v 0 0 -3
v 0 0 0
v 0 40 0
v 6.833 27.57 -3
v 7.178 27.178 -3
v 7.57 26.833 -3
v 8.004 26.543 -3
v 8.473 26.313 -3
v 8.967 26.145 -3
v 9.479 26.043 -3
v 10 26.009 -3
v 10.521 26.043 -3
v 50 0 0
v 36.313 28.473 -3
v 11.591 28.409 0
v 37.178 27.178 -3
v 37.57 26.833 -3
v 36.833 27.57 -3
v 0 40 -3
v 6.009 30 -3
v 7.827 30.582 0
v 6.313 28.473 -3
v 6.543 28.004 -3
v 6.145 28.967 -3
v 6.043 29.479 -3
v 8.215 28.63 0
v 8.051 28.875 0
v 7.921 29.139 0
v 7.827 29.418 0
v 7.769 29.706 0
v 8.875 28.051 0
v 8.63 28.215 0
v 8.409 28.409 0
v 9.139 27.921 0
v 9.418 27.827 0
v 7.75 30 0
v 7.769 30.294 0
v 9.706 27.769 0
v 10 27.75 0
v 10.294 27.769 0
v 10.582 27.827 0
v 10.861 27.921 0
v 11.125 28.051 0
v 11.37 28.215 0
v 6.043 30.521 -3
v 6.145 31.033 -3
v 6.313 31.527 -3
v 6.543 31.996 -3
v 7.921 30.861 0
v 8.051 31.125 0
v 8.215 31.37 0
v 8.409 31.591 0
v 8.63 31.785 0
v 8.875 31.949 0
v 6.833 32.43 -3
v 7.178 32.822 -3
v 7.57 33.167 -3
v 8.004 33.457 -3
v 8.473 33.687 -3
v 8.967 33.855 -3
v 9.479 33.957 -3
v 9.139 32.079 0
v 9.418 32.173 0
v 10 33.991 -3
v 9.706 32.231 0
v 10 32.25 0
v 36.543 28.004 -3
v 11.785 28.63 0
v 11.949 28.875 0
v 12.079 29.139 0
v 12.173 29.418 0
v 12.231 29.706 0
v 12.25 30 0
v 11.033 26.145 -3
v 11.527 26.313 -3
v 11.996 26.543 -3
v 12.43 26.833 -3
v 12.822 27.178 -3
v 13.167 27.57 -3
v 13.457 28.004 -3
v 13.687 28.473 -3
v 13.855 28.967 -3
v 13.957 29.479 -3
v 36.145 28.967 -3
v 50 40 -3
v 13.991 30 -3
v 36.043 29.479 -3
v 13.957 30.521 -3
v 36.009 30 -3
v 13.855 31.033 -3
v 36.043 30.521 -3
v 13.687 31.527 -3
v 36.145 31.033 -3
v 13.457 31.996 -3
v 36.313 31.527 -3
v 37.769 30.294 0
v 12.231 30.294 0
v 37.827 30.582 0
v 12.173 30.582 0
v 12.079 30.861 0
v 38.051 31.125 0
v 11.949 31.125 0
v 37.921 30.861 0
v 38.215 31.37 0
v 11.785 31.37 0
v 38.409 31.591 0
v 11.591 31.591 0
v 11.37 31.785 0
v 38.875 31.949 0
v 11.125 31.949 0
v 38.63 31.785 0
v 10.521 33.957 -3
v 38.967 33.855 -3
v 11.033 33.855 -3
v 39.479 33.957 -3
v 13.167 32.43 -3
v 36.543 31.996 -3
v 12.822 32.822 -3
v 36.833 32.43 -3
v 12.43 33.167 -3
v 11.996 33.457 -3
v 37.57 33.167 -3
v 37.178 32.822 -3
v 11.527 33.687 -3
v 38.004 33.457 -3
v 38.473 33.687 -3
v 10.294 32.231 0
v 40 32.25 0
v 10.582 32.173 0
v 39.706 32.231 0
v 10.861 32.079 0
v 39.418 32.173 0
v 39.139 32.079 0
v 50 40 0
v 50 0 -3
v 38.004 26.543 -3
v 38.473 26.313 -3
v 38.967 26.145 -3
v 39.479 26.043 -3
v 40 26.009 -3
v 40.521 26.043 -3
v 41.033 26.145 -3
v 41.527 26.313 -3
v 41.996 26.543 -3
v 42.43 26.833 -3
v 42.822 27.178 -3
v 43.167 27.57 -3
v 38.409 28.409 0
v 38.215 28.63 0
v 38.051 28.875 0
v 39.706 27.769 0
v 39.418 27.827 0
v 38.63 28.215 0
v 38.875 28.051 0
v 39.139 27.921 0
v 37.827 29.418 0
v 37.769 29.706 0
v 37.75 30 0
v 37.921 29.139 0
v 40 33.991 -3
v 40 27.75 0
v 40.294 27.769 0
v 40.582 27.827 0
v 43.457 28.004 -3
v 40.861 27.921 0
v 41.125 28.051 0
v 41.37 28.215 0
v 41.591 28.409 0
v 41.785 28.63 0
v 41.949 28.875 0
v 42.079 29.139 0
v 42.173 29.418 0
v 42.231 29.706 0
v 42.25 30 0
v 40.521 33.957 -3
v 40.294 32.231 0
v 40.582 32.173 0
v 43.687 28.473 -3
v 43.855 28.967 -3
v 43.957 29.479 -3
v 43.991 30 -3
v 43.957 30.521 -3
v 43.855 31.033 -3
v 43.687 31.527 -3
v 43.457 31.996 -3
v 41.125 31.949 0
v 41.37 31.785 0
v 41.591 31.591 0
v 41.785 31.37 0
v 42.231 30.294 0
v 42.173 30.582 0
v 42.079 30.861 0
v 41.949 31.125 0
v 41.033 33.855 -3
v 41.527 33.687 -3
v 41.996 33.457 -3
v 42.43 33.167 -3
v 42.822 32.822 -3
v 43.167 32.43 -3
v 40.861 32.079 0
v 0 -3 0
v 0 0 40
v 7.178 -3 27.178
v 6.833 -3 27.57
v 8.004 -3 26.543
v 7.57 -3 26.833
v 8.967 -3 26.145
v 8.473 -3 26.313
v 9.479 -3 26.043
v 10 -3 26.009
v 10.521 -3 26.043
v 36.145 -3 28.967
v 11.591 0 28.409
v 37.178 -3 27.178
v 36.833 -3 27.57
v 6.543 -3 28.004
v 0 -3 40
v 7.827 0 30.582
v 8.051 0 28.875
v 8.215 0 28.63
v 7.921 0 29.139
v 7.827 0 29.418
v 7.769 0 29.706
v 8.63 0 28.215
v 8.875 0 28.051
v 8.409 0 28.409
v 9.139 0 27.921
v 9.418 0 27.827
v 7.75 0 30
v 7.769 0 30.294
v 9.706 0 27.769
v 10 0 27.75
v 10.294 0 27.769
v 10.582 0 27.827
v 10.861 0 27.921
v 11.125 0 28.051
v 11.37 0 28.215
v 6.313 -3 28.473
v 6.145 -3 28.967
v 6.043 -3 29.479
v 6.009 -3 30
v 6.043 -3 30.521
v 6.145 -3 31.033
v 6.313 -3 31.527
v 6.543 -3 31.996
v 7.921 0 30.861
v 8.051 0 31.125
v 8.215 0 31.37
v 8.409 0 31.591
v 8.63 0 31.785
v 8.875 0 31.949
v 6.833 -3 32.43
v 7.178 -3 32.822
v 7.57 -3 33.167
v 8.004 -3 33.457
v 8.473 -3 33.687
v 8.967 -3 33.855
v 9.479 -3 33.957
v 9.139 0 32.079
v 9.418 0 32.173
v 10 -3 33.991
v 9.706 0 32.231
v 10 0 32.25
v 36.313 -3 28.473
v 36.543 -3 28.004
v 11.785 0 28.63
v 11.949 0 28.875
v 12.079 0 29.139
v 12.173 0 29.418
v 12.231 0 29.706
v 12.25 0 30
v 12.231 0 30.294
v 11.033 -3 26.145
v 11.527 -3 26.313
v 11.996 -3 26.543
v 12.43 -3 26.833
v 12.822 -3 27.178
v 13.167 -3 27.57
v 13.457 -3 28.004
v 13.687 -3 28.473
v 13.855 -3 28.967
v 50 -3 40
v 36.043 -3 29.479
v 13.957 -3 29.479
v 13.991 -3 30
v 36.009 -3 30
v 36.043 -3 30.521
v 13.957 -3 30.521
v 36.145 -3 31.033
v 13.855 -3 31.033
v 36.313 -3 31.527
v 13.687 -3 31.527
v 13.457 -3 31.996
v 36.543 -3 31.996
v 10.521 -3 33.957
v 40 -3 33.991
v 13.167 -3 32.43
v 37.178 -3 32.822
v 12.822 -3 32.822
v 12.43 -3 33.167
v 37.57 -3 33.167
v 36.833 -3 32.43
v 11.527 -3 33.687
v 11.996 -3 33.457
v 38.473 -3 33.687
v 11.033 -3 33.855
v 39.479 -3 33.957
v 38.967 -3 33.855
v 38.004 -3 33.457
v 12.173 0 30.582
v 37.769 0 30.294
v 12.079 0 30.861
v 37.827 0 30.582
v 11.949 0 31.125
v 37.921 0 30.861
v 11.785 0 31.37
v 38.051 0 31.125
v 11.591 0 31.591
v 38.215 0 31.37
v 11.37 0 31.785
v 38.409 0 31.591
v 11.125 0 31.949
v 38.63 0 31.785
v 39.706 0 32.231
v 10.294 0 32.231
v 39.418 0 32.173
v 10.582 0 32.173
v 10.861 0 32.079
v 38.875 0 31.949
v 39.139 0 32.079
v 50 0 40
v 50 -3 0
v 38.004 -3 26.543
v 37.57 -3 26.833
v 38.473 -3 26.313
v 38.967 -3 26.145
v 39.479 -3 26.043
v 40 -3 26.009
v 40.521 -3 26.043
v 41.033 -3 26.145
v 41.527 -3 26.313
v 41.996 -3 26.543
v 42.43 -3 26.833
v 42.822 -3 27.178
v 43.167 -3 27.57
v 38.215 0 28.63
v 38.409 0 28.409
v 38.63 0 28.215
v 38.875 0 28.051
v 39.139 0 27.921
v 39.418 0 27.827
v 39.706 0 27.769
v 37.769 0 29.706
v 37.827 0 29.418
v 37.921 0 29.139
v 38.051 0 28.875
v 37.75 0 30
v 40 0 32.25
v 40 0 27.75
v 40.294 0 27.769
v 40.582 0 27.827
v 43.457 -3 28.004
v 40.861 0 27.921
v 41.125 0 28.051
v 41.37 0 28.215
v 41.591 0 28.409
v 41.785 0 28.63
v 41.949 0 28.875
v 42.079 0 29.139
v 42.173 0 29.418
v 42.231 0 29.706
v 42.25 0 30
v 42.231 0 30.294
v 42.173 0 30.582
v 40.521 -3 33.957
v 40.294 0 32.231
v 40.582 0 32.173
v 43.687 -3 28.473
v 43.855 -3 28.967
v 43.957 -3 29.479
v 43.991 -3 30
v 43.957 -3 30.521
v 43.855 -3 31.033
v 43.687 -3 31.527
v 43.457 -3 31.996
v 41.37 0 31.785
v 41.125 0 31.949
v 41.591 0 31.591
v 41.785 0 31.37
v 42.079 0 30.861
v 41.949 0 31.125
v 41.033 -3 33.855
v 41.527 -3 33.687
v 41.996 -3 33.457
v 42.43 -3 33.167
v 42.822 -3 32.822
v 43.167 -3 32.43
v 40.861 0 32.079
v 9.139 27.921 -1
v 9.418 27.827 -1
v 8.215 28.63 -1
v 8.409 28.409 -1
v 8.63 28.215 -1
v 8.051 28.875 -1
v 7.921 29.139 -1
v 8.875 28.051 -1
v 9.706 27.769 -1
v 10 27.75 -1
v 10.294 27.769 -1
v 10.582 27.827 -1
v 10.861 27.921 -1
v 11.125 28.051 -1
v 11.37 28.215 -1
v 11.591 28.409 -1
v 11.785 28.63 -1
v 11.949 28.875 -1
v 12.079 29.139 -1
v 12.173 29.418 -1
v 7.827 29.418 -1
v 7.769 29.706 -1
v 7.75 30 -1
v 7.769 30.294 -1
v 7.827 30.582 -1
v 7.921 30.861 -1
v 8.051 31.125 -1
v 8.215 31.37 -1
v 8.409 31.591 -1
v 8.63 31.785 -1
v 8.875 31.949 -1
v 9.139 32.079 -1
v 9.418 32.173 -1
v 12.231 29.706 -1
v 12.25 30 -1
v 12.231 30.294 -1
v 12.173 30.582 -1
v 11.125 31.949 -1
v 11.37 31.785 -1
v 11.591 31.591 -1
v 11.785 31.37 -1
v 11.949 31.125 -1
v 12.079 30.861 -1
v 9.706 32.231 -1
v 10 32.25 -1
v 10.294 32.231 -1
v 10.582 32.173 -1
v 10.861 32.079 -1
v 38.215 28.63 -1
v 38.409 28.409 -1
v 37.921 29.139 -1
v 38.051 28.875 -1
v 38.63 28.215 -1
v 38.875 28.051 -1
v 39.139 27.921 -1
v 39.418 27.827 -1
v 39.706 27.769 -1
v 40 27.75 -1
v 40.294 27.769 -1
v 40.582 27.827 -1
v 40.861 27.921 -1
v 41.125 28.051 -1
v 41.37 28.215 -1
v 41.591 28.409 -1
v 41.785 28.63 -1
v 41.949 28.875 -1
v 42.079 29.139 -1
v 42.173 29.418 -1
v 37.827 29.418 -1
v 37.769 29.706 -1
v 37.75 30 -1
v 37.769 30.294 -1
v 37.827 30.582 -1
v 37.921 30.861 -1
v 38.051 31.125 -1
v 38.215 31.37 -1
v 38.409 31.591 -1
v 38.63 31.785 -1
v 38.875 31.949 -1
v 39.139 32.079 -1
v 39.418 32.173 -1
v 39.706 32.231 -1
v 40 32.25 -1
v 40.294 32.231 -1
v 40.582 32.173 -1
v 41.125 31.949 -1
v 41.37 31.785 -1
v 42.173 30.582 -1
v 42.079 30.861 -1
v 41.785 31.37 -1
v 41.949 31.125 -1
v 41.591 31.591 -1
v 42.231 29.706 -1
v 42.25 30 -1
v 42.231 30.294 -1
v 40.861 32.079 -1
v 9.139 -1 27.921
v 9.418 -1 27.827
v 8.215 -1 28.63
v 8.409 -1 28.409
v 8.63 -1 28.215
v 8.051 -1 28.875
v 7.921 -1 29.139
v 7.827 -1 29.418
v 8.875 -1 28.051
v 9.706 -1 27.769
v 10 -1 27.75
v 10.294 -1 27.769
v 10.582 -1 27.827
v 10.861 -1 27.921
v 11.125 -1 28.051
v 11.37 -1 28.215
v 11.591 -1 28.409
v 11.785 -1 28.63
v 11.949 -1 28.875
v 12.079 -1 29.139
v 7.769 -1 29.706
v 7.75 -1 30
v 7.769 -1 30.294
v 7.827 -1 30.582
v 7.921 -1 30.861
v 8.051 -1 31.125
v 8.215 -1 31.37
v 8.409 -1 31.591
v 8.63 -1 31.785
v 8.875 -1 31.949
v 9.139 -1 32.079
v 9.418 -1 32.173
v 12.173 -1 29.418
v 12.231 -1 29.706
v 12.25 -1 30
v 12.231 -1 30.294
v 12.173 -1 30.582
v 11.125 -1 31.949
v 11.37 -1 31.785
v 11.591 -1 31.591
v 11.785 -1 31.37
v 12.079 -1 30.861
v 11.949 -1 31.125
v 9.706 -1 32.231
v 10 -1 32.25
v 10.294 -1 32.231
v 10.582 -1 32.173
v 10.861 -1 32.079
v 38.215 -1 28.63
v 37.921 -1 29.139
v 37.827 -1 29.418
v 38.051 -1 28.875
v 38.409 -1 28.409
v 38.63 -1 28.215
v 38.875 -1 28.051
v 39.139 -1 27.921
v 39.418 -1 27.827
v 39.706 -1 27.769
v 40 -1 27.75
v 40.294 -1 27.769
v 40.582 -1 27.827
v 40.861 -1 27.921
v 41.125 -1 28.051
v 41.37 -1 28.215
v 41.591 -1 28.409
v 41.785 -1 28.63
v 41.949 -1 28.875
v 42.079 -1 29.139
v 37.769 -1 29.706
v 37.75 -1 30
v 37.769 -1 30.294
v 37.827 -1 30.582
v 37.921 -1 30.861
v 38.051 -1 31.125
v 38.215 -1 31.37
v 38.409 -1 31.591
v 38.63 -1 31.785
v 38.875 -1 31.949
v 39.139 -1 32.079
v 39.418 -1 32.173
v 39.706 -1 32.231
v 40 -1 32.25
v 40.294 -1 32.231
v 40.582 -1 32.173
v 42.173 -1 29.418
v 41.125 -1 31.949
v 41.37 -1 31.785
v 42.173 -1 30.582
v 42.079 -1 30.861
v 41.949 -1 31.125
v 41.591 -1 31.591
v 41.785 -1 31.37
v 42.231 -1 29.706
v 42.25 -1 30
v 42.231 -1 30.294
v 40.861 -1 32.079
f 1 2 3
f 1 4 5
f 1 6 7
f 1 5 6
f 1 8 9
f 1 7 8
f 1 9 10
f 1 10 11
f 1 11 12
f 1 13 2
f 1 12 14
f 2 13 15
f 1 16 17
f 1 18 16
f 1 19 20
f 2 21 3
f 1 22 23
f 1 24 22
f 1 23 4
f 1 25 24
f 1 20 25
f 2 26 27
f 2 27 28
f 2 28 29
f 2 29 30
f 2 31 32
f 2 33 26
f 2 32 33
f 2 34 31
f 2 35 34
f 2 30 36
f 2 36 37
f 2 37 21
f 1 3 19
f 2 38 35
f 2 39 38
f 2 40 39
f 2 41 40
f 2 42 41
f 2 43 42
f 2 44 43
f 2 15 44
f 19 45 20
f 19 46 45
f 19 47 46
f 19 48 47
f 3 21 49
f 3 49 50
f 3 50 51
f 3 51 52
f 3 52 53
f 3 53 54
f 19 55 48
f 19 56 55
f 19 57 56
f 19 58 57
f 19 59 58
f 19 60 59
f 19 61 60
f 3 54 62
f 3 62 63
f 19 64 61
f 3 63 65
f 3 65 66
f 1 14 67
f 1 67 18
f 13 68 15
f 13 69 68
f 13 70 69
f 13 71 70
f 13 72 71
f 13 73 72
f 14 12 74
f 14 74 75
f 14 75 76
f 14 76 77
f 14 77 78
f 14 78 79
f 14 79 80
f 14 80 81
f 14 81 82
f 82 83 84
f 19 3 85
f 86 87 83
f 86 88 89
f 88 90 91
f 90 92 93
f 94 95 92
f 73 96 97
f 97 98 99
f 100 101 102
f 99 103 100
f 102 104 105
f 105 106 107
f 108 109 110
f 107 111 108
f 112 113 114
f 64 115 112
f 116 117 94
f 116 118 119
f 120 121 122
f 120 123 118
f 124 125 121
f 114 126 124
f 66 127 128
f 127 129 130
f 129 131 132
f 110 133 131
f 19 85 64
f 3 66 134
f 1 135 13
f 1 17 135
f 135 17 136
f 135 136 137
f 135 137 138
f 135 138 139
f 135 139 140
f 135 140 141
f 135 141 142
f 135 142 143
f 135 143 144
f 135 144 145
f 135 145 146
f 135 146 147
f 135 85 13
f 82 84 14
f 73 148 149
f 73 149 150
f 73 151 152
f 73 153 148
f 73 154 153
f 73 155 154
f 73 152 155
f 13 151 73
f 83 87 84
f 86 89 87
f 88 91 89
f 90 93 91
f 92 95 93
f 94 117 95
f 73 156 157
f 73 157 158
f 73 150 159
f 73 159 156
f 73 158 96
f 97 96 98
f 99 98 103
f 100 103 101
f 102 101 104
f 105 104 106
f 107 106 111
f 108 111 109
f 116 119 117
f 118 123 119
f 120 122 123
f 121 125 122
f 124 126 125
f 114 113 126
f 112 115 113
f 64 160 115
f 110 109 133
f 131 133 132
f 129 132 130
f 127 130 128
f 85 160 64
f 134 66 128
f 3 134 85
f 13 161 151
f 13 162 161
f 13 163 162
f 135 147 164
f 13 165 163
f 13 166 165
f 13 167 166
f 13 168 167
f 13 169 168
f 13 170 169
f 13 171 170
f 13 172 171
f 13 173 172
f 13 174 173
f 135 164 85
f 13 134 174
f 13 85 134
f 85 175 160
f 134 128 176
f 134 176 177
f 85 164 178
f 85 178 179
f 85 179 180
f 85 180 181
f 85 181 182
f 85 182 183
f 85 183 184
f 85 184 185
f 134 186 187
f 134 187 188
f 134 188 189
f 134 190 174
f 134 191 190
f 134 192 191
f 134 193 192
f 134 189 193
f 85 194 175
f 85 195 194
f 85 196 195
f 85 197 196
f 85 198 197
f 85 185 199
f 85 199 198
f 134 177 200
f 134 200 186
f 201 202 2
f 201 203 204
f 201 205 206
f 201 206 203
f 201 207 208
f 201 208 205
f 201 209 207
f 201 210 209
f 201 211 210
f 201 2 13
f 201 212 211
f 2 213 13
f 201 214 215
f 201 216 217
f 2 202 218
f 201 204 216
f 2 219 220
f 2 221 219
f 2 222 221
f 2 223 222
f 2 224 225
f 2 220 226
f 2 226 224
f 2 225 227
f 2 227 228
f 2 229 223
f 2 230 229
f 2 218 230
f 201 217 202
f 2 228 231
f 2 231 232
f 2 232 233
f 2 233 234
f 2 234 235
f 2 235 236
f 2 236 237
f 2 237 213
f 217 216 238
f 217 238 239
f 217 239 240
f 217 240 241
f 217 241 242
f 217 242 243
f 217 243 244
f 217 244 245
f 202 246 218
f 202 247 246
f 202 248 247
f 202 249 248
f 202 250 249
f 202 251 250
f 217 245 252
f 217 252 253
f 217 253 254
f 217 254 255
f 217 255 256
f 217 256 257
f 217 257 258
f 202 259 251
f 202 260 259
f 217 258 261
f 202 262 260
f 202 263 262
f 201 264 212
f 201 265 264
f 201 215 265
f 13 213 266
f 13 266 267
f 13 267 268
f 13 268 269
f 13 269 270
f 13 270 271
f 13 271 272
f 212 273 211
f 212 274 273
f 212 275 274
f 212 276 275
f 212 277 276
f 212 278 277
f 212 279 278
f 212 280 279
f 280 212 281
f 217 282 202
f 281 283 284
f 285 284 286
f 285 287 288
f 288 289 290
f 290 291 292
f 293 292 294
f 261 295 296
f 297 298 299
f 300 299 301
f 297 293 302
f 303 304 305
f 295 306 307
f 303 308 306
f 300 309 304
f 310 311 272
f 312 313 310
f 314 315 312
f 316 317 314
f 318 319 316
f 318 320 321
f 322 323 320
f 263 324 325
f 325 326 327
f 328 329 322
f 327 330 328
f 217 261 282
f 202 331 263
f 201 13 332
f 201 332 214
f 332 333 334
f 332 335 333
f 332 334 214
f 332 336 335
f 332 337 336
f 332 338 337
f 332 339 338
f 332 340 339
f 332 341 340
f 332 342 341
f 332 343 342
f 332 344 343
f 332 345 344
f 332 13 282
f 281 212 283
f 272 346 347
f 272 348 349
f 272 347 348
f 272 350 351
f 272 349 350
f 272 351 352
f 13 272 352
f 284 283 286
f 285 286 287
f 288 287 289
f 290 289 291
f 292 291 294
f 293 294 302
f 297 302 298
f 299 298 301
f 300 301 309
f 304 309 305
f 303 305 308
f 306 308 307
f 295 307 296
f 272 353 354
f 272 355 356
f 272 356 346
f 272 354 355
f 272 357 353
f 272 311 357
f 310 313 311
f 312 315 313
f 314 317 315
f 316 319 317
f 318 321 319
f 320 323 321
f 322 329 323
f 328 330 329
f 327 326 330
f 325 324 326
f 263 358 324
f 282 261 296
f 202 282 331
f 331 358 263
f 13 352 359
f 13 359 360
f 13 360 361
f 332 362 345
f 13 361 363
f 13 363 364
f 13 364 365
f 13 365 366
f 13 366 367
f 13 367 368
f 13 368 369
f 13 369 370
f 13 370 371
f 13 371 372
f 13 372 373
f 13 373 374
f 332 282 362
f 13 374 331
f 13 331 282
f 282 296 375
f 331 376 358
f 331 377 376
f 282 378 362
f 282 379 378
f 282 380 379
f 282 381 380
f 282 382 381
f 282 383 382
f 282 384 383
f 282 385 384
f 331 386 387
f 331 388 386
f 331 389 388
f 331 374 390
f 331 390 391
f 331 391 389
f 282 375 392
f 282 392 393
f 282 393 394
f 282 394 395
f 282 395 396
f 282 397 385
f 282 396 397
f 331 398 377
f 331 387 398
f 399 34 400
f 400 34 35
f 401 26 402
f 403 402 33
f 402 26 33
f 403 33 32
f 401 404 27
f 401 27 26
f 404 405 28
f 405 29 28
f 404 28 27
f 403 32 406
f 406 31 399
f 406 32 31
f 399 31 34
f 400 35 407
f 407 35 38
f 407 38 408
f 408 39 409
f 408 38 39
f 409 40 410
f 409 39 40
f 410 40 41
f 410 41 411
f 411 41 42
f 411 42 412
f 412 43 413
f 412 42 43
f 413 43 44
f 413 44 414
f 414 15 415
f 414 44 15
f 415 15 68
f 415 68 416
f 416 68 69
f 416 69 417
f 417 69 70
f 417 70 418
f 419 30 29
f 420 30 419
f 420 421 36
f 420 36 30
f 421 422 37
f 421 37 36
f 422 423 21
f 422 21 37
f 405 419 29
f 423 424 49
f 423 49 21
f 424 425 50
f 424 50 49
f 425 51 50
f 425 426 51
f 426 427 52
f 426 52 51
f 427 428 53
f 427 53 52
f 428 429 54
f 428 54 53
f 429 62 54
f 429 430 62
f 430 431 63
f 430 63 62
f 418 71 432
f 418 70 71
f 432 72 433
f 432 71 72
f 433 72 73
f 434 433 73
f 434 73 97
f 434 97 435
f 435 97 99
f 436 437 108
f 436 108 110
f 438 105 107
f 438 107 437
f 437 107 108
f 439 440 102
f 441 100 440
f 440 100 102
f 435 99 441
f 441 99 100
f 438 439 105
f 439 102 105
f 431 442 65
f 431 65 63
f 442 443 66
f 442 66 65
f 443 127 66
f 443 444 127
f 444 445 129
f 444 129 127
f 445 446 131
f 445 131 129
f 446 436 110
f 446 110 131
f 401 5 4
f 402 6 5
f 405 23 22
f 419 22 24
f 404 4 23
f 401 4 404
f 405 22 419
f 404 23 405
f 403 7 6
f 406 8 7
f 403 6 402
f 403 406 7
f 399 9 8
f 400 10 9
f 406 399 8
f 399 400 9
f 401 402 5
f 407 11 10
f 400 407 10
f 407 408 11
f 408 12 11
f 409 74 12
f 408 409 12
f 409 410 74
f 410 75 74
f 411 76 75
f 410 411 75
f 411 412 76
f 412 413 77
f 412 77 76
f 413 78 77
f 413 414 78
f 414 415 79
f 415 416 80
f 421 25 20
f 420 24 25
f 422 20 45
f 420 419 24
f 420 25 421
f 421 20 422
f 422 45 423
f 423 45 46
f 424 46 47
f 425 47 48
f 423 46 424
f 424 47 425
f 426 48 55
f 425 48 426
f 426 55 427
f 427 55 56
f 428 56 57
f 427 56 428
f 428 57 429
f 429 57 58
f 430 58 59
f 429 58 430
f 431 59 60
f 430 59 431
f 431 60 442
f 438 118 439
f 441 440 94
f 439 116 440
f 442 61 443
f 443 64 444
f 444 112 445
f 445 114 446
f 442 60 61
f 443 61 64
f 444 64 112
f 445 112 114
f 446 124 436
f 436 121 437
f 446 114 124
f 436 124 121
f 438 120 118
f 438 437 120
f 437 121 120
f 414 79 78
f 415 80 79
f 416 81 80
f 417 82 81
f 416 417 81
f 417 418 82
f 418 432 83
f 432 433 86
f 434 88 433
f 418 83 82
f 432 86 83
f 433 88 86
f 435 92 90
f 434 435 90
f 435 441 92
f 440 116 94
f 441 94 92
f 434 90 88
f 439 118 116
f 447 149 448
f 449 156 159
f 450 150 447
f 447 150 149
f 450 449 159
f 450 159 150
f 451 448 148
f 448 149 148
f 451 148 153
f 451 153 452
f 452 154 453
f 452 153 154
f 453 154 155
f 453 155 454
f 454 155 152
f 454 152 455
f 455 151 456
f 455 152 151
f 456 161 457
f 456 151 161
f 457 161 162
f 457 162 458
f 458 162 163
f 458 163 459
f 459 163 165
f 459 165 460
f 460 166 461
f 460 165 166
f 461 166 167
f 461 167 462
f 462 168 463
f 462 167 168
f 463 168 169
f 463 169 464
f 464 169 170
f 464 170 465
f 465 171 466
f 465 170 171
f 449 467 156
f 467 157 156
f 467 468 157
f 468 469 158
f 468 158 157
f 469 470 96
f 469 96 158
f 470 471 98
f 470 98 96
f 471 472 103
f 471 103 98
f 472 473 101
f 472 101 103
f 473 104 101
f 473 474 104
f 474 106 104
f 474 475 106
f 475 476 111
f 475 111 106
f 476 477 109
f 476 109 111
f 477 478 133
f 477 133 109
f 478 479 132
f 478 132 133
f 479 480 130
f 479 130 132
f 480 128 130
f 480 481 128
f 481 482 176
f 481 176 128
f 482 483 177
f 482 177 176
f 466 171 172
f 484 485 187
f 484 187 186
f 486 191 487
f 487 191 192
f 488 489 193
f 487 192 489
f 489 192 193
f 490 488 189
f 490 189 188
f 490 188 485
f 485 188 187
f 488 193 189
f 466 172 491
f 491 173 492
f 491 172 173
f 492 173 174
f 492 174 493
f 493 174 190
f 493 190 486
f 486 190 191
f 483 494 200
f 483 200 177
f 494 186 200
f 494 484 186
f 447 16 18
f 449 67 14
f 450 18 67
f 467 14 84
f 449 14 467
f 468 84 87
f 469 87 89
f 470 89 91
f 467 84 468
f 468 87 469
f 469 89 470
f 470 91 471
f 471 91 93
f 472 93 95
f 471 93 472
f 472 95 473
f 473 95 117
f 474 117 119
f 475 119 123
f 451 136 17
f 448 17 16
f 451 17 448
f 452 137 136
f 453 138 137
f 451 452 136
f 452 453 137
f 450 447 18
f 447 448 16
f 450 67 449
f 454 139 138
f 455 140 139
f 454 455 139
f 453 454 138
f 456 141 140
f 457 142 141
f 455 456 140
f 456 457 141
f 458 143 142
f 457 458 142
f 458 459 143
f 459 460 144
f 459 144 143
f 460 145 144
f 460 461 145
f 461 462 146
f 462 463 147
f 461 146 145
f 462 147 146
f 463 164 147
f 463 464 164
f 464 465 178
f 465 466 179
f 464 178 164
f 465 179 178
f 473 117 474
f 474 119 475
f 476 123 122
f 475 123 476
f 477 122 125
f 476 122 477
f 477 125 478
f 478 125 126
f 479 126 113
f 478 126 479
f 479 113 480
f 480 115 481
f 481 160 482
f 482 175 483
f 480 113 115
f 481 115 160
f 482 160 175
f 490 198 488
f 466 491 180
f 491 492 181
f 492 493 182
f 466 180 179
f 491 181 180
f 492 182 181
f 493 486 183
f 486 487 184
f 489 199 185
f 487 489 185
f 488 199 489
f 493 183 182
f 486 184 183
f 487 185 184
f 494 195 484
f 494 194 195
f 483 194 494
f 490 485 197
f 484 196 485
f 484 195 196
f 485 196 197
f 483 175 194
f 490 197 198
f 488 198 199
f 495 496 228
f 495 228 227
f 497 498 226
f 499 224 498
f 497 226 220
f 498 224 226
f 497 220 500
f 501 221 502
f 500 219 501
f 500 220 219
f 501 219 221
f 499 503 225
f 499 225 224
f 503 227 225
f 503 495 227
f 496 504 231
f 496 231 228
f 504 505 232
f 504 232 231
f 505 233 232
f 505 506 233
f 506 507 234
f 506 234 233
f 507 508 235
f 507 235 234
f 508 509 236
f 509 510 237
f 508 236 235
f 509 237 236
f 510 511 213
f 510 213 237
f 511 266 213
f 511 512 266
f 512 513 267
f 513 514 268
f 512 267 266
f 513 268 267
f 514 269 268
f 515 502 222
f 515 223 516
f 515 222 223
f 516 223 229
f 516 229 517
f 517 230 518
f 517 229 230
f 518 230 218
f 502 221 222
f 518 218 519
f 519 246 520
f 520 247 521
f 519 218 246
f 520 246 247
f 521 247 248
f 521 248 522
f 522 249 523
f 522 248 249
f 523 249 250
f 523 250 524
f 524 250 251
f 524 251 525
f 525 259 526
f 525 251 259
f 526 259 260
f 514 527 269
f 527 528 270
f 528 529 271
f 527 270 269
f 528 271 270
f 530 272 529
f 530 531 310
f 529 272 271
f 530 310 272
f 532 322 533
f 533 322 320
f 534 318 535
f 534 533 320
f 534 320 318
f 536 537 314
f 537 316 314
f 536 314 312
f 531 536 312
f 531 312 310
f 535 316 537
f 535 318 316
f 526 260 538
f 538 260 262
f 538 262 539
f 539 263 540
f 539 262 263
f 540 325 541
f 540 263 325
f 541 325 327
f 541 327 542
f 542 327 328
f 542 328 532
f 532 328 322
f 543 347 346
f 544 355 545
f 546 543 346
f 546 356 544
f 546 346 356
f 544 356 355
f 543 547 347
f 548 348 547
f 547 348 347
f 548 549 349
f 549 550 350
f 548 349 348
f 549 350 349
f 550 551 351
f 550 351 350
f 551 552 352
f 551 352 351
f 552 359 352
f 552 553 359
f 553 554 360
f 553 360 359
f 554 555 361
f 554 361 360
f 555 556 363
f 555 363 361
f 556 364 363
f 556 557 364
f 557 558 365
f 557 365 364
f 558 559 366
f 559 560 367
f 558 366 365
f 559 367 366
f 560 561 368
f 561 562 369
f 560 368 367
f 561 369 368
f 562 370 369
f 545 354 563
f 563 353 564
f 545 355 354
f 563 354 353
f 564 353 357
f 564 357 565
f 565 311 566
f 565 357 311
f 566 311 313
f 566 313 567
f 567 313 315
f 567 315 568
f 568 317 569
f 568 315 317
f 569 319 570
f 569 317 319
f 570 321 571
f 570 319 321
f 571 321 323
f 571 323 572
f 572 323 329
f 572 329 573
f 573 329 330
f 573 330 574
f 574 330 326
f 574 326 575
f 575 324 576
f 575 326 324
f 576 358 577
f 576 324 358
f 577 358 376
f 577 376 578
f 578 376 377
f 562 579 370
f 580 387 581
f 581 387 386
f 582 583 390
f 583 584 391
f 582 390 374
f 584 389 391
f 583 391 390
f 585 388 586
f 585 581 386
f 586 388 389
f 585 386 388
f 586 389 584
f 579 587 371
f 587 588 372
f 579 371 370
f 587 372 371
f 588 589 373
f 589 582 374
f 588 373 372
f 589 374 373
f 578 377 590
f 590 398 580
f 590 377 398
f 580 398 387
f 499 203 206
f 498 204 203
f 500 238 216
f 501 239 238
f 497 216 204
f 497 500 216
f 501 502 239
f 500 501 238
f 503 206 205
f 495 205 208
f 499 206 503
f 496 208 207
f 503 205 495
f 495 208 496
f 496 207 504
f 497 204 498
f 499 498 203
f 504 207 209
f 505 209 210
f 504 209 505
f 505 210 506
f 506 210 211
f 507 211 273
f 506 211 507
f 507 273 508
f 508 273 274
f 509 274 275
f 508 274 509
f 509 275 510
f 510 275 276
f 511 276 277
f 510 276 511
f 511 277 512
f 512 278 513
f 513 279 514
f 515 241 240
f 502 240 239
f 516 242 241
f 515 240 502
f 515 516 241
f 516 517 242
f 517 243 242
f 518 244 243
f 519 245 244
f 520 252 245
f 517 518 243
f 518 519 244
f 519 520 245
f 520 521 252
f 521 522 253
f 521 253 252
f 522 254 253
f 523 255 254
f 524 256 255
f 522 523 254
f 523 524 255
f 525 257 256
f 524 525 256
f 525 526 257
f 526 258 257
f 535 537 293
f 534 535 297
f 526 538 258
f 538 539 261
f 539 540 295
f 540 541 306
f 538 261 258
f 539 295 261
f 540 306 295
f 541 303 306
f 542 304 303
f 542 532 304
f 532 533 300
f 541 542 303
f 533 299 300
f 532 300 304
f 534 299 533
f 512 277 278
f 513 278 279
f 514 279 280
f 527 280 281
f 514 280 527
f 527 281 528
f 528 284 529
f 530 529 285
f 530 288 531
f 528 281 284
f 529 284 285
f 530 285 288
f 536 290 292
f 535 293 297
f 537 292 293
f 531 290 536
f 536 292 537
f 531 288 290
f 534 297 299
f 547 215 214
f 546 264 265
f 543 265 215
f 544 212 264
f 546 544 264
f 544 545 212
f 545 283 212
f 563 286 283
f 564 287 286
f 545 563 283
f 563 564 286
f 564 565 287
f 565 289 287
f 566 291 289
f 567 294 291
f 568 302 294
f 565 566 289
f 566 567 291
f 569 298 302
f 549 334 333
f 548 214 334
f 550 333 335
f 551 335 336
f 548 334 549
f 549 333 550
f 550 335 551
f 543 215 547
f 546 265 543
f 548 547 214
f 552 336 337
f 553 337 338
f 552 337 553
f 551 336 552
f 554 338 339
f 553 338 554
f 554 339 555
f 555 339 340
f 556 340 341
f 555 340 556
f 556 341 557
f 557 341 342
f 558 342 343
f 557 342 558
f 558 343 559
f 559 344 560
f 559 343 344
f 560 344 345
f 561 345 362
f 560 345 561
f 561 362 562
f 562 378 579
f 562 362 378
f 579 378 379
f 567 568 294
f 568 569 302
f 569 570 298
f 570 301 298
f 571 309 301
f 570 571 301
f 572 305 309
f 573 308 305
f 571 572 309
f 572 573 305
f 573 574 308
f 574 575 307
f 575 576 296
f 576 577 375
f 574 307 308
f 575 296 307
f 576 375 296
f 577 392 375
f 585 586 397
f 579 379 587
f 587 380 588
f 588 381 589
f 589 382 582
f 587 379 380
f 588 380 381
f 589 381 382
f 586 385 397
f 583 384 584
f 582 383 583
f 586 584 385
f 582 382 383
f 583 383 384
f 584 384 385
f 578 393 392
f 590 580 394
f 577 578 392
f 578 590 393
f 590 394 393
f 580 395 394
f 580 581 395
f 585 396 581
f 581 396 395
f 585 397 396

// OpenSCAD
// L-Bracket (L字金具)
// 内側コーナーが原点、水平面は+Y方向、垂直面は+Z方向

width      = 50;   // 幅 (X方向)
fl_horiz   = 40;   // 水平フランジ奥行き (Y方向)
fl_vert    = 40;   // 垂直フランジ高さ (Z方向)
t          = 3;    // 板厚
hole_d     = 4.5;  // 貫通穴径
cs_d       = 8;    // 皿座面径
cs_dep     = 2;    // 皿座面深さ
inset      = 10;   // 縁からの距離
eps        = 0.01; // 干渉回避用微小値

// 穴のX位置(左右対称、中心線から±15mm)
hole_xs = [width/2 - (width/2 - inset), width/2 + (width/2 - inset)];
// = [10, 40]

module l_bracket() {
    difference() {
        union() {
            // 水平面: X[0~50], Y[0~40], Z[-3~0]
            translate([0, 0, -t])
                cube([width, fl_horiz, t]);

            // 垂直面: X[0~50], Y[-3~0], Z[0~40]
            translate([0, -t, 0])
                cube([width, t, fl_vert]);
        }

        // --- 水平面の皿穴 ---
        // 外側 = 下面(Z = -t)、穴は下から上(+Z)へ開ける
        // Y方向: 縁(Y=fl_horiz)から inset 内側 → Y = fl_horiz - inset = 30
        for (x = hole_xs) {
            translate([x, fl_horiz - inset, -t - eps]) {
                // 貫通穴(下から上へ)
                cylinder(d=hole_d, h=t + 2*eps, $fn=48);
                // 皿座面: 外側(下面)から内側へ cs_dep 掘る
                // 下端(Z=0相当)が大径(cs_d)、上が小径(hole_d)
                cylinder(d1=cs_d, d2=hole_d, h=cs_dep + eps, $fn=48);
            }
        }

        // --- 垂直面の皿穴 ---
        // 外側 = 前面(Y = -t)、穴は前(-Y)から後(+Y)へ開ける
        // Z方向: 縁(Z=fl_vert)から inset 内側 → Z = fl_vert - inset = 30
        for (x = hole_xs) {
            translate([x, -t - eps, fl_vert - inset]) {
                rotate([-90, 0, 0]) {
                    // 貫通穴(前から後へ)
                    cylinder(d=hole_d, h=t + 2*eps, $fn=48);
                    // 皿座面: 外側(前面)から内側へ cs_dep 掘る
                    cylinder(d1=cs_d, d2=hole_d, h=cs_dep + eps, $fn=48);
                }
            }
        }
    }
}

l_bracket();
